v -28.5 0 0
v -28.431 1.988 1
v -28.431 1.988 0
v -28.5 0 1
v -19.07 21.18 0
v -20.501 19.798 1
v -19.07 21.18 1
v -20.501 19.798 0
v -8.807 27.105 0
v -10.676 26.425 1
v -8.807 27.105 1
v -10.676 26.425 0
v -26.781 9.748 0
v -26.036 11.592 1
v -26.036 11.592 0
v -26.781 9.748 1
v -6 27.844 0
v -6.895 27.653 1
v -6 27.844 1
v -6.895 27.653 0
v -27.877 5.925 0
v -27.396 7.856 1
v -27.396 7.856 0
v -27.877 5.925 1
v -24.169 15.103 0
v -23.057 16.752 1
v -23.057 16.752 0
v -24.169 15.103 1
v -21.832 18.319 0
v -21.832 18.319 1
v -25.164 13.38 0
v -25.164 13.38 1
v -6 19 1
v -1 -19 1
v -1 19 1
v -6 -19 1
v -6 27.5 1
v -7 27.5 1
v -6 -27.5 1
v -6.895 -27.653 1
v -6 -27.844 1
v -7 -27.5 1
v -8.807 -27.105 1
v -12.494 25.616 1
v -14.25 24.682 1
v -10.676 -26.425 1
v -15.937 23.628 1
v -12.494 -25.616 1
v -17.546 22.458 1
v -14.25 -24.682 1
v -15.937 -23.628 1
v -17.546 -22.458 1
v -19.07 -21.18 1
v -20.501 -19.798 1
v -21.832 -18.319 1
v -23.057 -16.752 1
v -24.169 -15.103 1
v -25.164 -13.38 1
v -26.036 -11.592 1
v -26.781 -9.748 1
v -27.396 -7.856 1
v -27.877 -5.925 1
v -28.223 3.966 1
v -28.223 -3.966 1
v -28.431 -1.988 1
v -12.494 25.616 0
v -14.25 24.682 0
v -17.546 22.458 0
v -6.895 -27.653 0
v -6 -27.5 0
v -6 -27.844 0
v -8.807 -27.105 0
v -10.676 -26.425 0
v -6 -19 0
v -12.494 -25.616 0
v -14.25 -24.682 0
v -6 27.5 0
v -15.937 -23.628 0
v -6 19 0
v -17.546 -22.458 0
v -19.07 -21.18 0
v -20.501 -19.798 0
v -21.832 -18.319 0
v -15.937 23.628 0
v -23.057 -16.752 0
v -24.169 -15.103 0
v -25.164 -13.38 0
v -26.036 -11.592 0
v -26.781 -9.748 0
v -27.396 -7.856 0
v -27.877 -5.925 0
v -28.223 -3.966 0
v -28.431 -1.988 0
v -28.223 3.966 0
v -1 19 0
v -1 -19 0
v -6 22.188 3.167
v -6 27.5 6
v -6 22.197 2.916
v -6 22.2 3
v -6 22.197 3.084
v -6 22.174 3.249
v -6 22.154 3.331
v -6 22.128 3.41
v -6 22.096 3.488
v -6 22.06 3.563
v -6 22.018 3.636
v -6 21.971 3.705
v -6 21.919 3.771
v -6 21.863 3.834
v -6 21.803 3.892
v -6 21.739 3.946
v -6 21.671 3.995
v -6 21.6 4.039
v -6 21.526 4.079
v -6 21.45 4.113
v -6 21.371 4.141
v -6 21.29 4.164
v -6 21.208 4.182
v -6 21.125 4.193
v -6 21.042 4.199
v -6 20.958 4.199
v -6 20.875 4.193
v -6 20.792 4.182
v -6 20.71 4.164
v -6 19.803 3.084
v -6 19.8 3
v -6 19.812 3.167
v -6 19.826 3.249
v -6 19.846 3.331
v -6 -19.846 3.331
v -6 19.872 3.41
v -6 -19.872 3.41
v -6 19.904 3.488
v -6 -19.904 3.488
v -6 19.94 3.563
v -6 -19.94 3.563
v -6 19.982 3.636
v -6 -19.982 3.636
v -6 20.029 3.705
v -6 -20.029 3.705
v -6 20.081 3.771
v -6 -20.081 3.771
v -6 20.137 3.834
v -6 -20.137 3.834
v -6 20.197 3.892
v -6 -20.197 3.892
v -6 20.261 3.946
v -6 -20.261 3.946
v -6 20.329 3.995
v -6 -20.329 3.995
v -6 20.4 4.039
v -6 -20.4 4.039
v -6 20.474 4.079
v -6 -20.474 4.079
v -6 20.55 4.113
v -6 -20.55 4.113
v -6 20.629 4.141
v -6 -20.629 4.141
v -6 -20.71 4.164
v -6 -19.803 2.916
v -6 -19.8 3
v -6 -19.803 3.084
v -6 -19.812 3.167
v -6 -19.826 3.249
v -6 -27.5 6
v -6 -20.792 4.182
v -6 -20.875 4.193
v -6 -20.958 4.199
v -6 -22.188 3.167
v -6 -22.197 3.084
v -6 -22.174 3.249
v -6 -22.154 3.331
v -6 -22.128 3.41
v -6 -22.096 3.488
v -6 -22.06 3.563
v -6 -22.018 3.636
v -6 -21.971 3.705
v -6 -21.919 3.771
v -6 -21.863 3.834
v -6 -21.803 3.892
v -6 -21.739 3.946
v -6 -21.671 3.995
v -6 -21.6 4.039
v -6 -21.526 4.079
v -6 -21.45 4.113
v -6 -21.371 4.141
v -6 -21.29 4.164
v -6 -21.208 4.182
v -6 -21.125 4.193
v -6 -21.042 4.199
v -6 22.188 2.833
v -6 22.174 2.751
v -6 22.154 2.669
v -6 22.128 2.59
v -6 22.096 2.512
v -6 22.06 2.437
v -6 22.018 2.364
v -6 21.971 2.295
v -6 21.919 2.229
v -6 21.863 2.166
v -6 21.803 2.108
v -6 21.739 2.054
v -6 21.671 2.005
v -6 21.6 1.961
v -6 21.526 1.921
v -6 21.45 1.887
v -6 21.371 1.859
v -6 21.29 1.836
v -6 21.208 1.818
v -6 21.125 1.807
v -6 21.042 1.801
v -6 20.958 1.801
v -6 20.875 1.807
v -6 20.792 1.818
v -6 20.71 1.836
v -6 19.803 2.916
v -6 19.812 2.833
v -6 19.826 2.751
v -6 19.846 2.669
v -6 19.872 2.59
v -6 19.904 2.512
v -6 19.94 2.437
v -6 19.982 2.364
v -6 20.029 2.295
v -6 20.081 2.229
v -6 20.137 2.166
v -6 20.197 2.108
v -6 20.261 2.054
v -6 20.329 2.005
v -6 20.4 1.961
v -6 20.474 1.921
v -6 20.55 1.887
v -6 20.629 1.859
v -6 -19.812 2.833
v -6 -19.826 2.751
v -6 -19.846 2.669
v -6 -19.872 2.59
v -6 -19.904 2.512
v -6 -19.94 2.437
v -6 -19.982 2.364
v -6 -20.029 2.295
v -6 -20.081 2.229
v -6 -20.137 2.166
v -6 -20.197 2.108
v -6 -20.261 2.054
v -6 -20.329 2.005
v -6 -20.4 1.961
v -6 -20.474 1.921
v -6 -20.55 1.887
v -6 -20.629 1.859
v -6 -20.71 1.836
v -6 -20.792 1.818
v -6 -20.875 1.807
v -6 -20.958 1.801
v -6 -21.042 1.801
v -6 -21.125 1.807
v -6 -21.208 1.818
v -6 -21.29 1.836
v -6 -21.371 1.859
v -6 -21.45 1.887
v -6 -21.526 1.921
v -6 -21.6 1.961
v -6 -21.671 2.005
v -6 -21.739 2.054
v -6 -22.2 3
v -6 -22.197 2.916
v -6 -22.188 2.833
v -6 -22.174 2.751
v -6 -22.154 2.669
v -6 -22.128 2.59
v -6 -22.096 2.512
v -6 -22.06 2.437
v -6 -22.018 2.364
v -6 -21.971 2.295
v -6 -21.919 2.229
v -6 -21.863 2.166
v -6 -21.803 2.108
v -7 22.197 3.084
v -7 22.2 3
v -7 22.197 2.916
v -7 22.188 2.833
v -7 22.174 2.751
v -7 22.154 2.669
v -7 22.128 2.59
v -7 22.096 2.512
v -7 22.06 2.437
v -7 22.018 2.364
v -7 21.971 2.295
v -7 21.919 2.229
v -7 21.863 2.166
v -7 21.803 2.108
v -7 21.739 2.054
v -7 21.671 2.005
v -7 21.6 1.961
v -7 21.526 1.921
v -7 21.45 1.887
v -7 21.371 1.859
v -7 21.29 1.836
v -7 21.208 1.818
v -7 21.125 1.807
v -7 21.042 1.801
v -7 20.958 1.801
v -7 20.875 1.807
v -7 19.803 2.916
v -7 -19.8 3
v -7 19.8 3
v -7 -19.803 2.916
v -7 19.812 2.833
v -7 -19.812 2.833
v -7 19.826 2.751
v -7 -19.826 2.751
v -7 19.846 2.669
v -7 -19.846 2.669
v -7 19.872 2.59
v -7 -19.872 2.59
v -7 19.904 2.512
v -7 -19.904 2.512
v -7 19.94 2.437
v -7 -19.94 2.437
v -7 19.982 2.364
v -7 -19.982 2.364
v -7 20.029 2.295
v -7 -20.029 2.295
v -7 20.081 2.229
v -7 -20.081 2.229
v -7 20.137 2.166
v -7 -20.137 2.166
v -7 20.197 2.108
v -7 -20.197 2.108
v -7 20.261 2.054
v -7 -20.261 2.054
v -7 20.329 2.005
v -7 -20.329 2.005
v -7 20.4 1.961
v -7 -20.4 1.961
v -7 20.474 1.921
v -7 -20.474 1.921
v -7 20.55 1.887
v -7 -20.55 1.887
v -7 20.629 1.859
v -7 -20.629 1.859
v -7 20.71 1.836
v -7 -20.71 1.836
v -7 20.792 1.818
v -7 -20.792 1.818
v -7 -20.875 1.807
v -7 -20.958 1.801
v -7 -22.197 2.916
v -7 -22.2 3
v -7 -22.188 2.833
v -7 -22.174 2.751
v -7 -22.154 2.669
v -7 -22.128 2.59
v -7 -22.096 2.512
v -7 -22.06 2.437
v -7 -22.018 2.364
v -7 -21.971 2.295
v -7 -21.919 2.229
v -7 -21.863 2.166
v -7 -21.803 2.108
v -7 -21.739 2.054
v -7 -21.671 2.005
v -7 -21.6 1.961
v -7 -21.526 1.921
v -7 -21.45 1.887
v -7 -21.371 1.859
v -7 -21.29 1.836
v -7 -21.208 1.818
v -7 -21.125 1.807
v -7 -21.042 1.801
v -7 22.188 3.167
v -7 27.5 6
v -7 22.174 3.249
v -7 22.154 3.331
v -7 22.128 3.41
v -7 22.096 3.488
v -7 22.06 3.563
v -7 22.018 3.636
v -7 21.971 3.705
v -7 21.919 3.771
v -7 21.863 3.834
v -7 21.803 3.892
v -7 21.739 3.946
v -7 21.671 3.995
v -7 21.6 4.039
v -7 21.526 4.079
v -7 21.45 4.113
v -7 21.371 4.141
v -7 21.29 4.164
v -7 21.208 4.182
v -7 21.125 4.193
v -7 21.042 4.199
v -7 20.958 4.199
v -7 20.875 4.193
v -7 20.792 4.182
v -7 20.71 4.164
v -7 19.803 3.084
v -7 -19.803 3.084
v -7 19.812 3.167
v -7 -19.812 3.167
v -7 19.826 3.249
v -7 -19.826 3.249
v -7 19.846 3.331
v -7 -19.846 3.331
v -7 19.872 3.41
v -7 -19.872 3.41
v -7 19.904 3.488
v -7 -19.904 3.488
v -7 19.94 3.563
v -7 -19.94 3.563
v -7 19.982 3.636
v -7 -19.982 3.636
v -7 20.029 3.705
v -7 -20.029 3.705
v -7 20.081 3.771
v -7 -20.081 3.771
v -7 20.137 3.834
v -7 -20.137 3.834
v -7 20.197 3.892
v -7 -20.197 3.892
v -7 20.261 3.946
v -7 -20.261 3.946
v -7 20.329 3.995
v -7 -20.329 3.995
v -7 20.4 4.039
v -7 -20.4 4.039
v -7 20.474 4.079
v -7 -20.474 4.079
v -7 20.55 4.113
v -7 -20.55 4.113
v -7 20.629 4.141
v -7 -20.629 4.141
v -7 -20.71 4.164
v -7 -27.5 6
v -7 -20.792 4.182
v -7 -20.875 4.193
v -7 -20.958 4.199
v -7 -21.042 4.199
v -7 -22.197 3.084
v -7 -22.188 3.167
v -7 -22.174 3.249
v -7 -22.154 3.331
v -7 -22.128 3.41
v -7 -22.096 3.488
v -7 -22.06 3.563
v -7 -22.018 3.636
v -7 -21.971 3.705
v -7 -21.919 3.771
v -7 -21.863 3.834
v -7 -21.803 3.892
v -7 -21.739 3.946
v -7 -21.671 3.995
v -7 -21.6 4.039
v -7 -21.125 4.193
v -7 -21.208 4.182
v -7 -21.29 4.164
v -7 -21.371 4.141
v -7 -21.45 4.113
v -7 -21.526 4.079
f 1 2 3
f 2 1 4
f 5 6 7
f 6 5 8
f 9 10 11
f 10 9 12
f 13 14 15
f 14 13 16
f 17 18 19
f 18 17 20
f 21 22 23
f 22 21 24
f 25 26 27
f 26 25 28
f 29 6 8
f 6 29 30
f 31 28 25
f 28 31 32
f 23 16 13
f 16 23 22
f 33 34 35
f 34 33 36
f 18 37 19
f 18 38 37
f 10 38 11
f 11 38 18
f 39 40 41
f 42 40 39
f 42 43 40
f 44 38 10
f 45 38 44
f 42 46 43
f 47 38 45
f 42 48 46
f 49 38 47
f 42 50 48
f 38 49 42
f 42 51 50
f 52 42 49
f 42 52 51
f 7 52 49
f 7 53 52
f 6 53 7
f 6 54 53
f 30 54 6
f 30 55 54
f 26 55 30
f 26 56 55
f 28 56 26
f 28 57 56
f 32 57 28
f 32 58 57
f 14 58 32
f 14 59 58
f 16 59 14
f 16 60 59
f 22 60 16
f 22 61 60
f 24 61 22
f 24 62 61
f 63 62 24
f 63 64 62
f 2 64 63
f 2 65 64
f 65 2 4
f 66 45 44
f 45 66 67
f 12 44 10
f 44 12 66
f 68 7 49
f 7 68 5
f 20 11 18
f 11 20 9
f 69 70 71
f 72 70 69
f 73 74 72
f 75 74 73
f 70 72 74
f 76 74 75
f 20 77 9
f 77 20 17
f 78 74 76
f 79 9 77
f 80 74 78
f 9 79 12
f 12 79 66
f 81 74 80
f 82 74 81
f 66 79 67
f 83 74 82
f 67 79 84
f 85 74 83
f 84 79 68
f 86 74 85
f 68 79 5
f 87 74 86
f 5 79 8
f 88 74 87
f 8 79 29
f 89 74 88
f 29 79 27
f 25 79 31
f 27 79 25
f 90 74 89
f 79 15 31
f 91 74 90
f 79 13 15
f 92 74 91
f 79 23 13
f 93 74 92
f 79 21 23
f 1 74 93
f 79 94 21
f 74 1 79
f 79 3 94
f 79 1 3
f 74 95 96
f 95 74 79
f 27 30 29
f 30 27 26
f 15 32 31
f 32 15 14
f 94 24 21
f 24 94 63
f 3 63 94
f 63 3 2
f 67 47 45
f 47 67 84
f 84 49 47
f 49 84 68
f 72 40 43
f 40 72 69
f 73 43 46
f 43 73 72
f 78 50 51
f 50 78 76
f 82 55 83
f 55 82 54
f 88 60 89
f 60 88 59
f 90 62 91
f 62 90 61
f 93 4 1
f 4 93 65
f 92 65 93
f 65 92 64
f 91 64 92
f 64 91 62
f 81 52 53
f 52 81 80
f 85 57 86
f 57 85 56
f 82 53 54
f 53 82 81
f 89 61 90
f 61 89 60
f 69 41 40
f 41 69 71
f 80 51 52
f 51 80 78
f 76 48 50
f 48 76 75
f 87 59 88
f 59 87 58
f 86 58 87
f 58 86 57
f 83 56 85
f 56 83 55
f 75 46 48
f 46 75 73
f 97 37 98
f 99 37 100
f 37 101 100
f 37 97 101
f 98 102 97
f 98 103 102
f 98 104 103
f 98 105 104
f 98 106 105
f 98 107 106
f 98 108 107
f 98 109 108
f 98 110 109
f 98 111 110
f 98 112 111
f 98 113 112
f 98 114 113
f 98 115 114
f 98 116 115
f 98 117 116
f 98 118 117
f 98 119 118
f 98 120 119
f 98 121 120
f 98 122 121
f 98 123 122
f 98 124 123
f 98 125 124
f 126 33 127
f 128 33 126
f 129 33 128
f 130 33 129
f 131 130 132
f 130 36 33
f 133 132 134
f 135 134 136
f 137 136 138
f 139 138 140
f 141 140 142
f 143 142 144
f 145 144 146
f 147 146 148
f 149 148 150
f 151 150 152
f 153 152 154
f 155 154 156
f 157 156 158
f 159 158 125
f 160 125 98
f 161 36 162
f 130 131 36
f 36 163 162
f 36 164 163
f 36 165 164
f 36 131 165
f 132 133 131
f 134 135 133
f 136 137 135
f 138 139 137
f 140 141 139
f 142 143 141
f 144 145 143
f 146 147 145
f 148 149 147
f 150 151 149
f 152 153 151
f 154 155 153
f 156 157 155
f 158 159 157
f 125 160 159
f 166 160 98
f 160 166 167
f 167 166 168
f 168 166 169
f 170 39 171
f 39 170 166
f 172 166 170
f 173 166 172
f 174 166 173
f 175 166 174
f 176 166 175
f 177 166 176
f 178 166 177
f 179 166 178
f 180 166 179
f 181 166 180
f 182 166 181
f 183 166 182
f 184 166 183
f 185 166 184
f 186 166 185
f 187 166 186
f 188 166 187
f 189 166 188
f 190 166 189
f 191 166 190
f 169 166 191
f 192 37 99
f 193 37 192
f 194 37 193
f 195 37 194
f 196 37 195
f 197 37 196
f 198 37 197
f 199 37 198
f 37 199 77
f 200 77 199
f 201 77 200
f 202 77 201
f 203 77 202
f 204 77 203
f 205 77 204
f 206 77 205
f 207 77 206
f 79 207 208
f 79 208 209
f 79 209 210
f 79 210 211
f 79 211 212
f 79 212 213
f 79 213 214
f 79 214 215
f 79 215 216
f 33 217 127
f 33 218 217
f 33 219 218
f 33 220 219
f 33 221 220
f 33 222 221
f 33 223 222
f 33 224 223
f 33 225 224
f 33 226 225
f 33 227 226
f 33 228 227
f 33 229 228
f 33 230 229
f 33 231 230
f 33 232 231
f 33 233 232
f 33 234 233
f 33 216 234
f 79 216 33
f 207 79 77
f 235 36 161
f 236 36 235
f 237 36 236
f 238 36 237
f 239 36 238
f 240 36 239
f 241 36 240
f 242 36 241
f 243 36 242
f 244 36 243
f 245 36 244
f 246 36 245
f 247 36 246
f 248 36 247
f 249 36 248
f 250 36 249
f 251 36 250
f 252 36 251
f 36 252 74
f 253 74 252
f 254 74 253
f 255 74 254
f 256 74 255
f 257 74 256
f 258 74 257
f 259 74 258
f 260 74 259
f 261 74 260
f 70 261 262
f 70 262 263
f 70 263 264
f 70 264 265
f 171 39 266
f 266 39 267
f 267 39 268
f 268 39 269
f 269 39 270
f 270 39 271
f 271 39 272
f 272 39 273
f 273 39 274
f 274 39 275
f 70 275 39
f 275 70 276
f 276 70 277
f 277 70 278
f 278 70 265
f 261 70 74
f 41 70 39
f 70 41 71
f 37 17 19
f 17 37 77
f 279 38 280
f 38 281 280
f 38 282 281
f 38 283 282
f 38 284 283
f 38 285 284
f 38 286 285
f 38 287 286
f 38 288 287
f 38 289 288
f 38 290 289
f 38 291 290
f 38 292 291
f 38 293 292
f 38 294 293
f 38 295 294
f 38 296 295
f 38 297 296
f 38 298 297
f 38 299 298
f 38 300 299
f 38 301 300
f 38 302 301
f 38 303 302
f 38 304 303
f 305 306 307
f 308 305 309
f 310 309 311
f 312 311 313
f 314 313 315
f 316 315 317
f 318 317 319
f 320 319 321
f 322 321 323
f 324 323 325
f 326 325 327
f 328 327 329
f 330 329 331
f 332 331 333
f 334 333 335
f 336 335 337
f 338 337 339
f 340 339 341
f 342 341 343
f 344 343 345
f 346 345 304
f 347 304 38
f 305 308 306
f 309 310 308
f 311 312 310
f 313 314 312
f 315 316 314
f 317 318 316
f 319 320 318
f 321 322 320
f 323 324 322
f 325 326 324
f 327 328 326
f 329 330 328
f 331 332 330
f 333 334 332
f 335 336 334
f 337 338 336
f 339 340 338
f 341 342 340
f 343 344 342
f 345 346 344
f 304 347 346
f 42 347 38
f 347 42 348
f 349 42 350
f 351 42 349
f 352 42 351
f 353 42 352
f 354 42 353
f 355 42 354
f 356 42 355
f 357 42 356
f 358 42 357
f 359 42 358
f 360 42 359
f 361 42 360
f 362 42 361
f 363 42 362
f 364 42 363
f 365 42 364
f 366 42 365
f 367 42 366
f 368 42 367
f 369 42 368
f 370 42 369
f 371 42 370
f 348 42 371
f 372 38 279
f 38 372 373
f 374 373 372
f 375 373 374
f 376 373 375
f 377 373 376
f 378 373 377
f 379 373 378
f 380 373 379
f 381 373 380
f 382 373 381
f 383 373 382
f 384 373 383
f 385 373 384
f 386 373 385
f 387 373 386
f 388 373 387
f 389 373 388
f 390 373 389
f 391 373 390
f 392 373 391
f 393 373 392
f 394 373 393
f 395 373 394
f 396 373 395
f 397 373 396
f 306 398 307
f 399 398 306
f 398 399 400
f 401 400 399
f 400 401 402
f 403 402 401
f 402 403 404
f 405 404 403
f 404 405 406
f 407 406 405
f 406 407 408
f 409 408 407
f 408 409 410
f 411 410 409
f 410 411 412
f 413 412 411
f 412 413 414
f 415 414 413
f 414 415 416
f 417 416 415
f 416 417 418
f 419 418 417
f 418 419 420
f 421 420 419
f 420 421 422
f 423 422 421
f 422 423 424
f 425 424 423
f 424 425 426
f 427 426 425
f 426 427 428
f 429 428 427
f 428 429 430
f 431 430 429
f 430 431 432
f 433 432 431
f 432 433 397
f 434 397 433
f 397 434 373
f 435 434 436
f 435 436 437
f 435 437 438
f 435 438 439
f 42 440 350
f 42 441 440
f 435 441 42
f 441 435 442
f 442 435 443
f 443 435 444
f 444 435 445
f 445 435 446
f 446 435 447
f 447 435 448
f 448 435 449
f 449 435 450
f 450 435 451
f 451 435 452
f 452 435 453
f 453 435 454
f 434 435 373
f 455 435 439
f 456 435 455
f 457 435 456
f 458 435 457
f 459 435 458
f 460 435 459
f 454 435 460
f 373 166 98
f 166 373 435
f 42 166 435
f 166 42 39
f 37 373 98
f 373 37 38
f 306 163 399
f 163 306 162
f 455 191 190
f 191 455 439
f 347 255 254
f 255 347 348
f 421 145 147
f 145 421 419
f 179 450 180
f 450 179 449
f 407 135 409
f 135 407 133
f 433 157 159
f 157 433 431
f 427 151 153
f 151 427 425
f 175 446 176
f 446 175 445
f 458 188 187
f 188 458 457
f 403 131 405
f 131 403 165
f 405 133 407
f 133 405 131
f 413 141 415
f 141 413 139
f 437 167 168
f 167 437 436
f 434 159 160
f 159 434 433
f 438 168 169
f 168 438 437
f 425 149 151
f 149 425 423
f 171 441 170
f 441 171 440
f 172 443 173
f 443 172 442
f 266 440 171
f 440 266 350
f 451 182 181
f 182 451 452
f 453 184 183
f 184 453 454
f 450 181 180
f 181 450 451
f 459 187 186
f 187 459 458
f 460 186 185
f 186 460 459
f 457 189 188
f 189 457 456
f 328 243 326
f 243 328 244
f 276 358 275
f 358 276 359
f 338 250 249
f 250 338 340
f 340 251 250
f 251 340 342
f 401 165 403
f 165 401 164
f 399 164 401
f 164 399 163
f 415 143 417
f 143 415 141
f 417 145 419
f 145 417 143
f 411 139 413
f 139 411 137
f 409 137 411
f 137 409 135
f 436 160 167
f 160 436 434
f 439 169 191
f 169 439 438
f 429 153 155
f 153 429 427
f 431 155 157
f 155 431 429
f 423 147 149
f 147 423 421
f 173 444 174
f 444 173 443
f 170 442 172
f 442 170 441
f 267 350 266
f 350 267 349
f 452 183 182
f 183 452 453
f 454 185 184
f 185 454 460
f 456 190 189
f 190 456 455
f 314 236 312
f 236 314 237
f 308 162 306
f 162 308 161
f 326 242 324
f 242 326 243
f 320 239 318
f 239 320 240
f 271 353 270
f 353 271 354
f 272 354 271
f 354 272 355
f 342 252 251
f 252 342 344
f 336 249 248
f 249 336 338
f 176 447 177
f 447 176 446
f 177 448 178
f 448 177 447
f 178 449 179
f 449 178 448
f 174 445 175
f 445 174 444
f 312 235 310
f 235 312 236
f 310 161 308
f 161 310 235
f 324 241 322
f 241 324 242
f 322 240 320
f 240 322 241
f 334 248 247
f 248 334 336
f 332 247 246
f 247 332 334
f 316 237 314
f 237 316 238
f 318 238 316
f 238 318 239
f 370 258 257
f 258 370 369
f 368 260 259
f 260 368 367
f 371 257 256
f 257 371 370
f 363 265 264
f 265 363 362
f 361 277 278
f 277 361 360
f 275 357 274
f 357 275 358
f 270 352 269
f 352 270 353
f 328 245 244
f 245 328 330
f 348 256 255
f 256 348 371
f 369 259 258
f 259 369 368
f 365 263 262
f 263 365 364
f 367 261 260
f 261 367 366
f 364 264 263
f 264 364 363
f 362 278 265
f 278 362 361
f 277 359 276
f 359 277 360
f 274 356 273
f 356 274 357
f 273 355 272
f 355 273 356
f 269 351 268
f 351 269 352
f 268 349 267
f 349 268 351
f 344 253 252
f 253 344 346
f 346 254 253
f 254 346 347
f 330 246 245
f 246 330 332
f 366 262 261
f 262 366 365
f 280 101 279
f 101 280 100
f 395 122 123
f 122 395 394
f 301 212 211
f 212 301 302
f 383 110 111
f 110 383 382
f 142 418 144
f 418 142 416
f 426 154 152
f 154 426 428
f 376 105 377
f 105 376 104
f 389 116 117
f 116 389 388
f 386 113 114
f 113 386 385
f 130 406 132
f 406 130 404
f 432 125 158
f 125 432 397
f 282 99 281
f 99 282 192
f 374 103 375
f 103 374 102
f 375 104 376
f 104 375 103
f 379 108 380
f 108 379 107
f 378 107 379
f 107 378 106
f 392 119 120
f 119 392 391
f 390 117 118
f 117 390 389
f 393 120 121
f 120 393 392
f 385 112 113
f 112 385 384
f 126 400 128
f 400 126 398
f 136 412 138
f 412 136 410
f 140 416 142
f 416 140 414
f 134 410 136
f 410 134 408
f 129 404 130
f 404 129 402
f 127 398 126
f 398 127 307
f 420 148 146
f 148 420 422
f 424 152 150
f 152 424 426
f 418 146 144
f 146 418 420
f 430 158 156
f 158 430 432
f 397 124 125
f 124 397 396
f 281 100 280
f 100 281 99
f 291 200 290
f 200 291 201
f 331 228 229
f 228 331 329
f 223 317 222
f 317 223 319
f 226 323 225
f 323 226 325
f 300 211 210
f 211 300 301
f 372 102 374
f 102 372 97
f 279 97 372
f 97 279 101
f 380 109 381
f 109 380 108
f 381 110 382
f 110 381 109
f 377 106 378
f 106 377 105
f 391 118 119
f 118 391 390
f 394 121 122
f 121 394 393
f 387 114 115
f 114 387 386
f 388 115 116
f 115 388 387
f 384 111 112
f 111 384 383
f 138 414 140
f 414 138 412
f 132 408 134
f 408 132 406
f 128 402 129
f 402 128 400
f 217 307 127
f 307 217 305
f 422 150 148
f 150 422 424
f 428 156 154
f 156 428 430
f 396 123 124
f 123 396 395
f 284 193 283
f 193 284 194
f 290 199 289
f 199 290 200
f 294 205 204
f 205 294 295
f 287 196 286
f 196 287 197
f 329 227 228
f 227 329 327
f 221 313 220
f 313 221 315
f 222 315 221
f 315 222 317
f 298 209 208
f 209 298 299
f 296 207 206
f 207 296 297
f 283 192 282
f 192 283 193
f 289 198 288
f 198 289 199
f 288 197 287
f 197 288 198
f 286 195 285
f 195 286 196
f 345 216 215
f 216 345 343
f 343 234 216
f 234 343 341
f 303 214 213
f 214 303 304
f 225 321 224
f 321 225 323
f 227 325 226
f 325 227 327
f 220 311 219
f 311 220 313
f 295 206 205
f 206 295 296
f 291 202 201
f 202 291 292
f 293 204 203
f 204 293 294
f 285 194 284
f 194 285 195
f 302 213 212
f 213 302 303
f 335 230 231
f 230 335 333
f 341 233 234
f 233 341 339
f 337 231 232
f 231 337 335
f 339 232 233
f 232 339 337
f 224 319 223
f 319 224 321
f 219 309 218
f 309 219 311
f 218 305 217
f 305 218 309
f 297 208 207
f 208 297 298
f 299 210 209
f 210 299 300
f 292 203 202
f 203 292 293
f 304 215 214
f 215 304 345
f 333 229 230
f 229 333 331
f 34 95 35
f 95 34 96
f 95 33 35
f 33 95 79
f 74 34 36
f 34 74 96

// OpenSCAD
$fn = 90;

//bottom

module sens_flowseparater() {
difference(){    
        cylinder (r1 = 57/2, r2 = 57/2, h= 1);
        translate ([-6,-30,0])cube([60,60,6]); 
    }
    translate ([-8,-38/2,0])cube([7,38,1]); 
    difference(){ 
        translate ([-7,-55/2,0])cube([1,55,6]); 
        translate ([-10,-42/2,3])rotate([90,0,90])cylinder (r1 = 1.2, r2 = 1.2, h= 10);
        translate ([-10,42/2,3])rotate([90,0,90])cylinder (r1 = 1.2, r2 = 1.2, h= 10);
    }
  };

 sens_flowseparater();
